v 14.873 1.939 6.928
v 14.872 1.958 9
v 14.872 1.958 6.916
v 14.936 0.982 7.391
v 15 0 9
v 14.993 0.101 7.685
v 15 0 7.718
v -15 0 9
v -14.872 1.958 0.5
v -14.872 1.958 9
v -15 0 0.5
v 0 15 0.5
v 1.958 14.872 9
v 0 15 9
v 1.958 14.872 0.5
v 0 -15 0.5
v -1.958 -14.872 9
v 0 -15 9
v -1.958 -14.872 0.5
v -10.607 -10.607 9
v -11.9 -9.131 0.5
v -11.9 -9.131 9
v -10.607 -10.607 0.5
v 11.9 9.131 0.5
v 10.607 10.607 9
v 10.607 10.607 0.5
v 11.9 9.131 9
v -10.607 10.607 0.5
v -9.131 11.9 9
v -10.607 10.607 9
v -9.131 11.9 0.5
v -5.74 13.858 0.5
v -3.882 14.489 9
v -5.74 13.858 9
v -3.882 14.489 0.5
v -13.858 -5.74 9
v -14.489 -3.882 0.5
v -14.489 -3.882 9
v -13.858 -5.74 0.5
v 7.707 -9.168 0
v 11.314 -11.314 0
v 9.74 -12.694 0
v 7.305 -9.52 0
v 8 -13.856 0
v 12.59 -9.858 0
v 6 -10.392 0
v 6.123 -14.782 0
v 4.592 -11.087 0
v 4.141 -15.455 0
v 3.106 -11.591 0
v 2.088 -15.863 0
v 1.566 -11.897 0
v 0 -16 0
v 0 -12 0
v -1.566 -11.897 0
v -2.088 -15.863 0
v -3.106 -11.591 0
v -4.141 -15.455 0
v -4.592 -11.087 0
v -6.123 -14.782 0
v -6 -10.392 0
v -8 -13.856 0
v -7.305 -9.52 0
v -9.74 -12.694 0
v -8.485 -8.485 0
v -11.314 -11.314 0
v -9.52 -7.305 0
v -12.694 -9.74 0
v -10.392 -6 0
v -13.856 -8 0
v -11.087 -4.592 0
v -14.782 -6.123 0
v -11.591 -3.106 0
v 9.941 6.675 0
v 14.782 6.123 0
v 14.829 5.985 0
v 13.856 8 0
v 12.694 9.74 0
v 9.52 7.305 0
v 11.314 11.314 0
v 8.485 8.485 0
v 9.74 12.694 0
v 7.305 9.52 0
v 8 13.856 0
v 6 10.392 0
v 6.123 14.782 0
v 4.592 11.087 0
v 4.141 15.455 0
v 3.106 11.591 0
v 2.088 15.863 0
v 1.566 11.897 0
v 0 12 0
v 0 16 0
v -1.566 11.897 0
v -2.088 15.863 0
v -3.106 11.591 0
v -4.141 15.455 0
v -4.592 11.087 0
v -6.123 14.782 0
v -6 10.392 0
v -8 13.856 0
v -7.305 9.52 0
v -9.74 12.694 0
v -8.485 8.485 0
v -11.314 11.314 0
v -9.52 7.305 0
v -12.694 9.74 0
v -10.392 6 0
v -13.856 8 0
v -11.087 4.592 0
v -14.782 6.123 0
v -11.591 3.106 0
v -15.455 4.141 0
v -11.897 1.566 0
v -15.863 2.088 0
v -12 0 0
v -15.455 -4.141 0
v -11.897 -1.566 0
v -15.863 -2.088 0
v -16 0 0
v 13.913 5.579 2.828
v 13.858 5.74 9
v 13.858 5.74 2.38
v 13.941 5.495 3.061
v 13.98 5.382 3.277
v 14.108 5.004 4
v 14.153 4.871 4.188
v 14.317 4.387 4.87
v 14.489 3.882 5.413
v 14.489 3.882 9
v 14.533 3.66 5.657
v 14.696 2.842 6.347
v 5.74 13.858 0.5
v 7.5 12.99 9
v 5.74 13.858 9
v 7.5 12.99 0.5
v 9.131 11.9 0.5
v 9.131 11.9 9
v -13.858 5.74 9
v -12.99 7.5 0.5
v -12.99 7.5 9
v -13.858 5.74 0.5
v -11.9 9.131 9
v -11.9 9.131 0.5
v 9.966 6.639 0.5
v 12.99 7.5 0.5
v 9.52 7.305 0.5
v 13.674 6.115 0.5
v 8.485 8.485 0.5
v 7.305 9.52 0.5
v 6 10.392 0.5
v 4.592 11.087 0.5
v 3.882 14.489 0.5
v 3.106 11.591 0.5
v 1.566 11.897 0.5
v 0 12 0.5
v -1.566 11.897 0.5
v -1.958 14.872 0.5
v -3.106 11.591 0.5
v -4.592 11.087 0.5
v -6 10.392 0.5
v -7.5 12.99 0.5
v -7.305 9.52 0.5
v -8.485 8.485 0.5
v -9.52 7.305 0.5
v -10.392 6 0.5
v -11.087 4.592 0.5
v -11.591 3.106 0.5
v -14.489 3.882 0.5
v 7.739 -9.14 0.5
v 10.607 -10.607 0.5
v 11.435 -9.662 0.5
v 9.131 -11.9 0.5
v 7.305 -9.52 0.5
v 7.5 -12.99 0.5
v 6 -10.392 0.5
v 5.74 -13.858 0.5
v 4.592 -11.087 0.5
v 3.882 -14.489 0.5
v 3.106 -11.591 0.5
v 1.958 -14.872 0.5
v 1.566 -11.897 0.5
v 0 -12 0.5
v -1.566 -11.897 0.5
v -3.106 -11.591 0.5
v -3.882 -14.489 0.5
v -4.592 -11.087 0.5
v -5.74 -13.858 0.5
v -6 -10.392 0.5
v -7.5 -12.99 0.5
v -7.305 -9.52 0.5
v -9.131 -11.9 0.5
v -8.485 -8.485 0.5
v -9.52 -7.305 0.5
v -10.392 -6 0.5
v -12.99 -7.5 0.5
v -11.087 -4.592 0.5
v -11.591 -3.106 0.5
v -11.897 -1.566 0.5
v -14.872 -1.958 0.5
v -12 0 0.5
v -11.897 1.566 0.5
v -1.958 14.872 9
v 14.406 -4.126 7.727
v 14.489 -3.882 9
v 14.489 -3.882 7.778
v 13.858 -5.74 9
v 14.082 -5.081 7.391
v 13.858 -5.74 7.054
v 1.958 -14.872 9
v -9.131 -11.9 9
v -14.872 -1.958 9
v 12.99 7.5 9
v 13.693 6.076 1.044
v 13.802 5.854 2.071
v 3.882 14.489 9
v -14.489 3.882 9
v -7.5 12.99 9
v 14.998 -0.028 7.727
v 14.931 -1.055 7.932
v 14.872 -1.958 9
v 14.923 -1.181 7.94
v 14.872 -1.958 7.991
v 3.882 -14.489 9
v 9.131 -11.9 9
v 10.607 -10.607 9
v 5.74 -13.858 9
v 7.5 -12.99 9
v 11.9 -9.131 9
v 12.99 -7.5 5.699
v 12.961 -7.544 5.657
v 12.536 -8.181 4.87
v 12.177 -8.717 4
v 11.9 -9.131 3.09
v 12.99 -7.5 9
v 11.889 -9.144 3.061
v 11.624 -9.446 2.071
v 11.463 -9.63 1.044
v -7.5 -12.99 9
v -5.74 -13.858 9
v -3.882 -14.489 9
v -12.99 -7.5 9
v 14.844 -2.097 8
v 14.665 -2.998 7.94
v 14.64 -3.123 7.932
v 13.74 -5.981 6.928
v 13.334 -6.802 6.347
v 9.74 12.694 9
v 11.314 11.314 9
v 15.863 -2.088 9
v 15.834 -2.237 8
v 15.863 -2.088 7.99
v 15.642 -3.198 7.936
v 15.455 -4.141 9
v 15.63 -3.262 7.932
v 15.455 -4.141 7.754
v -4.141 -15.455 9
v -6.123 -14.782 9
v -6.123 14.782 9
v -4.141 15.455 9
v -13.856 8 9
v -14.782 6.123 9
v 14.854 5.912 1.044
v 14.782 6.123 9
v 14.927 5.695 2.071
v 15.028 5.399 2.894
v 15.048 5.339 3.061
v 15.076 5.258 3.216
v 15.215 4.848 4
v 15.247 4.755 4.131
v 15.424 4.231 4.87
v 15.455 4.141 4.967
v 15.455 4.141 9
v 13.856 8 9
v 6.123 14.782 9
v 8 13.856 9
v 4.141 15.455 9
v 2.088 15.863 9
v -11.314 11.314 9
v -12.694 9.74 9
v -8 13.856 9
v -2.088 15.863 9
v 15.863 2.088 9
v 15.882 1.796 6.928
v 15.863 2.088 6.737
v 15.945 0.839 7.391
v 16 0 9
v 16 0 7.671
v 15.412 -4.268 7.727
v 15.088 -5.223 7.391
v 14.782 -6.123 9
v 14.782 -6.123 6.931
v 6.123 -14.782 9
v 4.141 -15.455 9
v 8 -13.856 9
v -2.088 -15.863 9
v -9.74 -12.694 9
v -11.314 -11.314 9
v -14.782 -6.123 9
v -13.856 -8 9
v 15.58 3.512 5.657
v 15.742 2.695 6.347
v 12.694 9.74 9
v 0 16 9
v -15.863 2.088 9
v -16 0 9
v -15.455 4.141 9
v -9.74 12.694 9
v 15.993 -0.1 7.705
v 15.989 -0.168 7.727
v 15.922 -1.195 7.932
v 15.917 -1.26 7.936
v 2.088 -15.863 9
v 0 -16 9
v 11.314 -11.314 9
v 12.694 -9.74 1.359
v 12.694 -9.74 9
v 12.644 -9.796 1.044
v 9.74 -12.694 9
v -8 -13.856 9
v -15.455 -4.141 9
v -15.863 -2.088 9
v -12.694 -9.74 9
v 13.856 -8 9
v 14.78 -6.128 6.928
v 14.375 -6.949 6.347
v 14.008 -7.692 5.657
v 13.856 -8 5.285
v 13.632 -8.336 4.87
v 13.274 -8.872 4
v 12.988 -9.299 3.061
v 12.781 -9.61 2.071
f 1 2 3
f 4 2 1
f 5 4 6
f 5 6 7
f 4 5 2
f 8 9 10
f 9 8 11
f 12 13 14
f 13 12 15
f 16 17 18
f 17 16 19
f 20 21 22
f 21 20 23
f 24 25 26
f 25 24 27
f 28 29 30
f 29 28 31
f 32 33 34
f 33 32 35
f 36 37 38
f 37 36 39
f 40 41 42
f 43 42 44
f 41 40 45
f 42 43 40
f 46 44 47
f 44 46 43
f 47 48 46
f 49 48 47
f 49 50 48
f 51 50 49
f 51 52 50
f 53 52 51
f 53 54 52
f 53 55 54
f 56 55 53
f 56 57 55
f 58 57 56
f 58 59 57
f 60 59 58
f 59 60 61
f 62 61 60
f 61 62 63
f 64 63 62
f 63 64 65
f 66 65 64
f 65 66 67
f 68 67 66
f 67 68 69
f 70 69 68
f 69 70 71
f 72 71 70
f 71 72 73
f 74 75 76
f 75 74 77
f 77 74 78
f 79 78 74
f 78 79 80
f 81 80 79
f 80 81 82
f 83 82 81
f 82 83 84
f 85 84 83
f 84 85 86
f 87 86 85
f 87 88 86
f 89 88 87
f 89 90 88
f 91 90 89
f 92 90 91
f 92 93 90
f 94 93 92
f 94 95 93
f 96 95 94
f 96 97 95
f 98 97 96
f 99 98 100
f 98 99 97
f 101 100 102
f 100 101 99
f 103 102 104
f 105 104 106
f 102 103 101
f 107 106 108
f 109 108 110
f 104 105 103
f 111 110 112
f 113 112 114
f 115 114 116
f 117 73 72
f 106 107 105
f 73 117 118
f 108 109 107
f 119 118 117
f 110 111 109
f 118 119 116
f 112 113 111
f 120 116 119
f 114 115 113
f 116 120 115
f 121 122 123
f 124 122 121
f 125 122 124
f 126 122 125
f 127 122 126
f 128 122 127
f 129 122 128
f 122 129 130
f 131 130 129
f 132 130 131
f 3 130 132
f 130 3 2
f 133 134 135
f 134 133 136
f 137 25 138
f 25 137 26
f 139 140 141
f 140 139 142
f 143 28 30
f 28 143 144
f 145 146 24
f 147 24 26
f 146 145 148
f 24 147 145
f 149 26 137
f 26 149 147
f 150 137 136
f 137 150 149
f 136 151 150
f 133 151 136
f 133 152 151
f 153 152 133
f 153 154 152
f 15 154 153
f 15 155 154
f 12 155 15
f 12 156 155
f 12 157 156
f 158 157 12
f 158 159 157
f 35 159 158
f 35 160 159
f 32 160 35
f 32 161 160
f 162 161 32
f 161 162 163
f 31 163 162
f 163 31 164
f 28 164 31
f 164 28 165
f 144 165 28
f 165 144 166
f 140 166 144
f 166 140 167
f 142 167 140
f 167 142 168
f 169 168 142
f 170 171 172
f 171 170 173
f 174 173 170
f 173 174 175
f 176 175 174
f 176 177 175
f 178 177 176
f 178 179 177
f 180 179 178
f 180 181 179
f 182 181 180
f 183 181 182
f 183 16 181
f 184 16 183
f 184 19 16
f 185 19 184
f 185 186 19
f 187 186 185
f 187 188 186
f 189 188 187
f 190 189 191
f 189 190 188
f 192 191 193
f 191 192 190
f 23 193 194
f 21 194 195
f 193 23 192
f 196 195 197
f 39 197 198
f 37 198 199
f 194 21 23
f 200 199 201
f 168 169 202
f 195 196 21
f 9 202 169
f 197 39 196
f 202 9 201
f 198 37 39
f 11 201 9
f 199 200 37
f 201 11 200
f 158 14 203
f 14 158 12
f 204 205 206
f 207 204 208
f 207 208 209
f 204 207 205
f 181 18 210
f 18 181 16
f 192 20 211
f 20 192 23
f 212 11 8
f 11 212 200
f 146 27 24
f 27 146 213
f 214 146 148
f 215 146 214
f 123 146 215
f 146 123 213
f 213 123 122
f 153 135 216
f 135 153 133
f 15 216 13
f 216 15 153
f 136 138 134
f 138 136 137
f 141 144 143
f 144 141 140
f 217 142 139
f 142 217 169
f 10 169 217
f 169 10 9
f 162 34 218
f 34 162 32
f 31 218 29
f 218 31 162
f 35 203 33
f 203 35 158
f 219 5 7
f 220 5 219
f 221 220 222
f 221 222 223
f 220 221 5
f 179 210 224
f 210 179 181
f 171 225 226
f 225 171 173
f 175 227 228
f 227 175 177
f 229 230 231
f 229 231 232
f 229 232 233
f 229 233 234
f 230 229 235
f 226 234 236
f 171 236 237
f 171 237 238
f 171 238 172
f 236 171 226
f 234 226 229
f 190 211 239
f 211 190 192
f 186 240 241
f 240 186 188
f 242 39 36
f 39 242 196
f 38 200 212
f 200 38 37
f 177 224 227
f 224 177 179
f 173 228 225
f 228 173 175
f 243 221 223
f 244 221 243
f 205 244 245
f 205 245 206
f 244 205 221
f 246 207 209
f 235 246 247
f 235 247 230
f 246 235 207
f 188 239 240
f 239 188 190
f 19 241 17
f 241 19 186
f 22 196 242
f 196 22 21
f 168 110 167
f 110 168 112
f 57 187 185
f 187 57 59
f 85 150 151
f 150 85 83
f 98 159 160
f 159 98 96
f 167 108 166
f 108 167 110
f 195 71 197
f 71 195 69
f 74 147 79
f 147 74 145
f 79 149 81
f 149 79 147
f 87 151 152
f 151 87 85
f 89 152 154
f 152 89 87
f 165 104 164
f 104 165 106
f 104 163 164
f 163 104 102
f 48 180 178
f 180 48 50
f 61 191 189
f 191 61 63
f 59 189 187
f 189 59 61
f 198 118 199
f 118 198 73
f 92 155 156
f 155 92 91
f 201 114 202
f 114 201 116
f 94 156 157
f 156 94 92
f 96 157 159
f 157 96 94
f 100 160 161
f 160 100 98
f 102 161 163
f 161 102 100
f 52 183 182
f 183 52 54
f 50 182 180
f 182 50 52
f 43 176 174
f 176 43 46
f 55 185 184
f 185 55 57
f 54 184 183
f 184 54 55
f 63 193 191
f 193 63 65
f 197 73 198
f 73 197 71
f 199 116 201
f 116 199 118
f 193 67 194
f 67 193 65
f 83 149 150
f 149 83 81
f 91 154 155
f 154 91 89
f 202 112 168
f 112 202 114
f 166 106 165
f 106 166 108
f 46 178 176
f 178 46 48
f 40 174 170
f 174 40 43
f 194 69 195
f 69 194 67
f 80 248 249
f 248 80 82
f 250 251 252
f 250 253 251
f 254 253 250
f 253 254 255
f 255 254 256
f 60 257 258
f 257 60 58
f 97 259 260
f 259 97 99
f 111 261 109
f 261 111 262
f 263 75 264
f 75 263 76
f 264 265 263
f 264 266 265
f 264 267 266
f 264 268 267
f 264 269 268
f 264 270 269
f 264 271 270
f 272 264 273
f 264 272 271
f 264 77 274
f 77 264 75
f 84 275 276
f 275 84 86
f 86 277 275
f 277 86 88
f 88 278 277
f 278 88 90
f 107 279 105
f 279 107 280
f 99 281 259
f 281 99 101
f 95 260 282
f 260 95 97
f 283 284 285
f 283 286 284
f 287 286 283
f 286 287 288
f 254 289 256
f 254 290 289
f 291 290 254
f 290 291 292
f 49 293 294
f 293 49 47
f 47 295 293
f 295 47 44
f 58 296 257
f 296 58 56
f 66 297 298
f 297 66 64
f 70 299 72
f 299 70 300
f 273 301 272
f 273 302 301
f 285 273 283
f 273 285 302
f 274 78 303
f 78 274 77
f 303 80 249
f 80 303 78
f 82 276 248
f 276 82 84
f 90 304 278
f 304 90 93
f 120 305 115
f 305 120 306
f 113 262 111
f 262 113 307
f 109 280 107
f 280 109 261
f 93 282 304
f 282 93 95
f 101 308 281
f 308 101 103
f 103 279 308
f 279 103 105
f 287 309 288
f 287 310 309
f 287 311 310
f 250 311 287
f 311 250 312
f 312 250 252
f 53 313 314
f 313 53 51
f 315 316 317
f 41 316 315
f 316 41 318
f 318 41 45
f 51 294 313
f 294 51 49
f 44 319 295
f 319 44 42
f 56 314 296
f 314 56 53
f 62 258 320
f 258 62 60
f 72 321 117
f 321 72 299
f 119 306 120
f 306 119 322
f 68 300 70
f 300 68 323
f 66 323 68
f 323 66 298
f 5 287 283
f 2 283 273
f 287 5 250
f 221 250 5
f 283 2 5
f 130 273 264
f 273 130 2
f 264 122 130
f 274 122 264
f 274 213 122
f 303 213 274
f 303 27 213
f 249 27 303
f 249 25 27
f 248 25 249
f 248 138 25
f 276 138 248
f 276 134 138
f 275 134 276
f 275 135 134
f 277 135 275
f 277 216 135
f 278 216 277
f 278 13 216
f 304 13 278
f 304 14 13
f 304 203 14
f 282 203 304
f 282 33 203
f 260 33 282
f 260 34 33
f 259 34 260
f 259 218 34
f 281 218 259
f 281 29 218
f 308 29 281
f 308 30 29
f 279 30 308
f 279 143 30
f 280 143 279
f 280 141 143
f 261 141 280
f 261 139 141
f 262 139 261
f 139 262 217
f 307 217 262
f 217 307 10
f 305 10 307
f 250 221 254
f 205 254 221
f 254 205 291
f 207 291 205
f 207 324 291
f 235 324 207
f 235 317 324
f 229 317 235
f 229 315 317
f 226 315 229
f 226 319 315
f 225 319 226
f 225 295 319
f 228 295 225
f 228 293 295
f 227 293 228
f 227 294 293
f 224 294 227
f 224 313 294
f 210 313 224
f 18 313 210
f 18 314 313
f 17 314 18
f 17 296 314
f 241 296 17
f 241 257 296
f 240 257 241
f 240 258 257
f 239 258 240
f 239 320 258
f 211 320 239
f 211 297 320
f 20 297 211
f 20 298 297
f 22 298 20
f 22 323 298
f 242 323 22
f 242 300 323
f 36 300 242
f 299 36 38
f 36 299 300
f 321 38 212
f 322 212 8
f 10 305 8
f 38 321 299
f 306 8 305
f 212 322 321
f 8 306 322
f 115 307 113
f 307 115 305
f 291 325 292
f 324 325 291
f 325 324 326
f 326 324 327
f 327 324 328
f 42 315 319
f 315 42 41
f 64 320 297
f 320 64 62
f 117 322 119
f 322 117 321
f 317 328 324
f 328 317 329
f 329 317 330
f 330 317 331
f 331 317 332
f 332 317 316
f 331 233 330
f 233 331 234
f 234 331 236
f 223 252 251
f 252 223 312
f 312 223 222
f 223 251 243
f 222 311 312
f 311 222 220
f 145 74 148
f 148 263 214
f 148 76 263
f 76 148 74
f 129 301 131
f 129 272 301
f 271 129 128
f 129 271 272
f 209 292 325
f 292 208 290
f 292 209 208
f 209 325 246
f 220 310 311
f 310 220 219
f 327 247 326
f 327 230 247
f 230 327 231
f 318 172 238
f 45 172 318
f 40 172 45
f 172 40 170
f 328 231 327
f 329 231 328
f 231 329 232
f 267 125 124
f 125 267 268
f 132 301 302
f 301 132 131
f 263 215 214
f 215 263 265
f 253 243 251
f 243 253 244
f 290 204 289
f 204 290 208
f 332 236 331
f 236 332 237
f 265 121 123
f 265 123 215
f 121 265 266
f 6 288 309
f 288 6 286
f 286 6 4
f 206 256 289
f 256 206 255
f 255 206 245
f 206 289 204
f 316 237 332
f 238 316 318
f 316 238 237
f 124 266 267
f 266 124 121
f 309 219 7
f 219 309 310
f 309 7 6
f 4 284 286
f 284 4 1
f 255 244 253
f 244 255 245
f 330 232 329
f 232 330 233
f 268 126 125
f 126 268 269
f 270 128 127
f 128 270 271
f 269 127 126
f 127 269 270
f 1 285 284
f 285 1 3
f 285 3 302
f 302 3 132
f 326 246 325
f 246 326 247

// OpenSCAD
// file: ../build_environments.scad
// build_environments.scad: modules to build level sections
//

module pool(diameter=10.0, wall_height=2.0, step_width=3.0, connections=[])
{
    difference() {
        union() {
        difference() {
            cylinder(h=0.5,r1=diameter+step_width,r2=diameter+step_width,$fn=48);
            translate([0,0,-0.1])
                cylinder(h=0.7,r1=diameter,r2=diameter,$fn=48);
        }
        difference() {
            cylinder(h=wall_height,r1=diameter+step_width+1.0,r2=diameter+step_width+1.0,$fn=48);
            translate([0,0,-0.1])
                cylinder(h=wall_height+0.2,r1=diameter+step_width,r2=diameter+step_width,$fn=48);
        }
        }
    
        for (c = connections)
        {
            rotate([0,90,0]) {
                angle = atan2(c[1],c[0]);
                rotate([-angle,0,0]) {
                    cylinder(h=diameter+5.0,r1=c[2],r2=c[2],$fn=48);
                }
            }
        }
    }
}

module straight(length=10.0, width=2.0, dy1=0.0, dy2=0.0, dz=0.0)
{
    dims = [0, 0, 0, 0, 0, (dz/length)];
    matrix = [
        [ 1, dims[0], dims[1], 0 ],
        [ dims[2], 1, dims[4], 0 ],
        [ dims[5], dims[3], 1, 0 ],
        [ 0, 0, 0, 1 ]
    ];
    multmatrix(matrix)
    difference() {
        translate([dy1,0,0])
        union() {
            rotate([0,90,0]) {
                difference() {
                    cylinder(h=(length-dy1-dy2),r1=width+1.0,r2=width+1.0,$fn=24);
                    translate([0,0,-0.1])
                        cylinder(h=(length-dy1-dy2+0.2),r1=width,r2=width,$fn=24);
                }
                difference() {
                    cylinder(h=1.0,r1=width+2.0,r2=width+2.0,$fn=24);
                    translate([0,0,-0.1])
                        cylinder(h=1.2,r1=width,r2=width,$fn=24);
                }
                translate([0,0,(length-dy1-dy2)-1.0]) {
                    difference() {
                        cylinder(h=1.0,r1=width+2.0,r2=width+2.0,$fn=24);
                        translate([0,0,-0.1])
                            cylinder(h=1.2,r1=width,r2=width,$fn=24);
                    }
                }
            }
        }
        translate([0,0,-(2*width+4.0)/2])
            cube([3*length,3*length,2*width+4.0],center=true);
    }
}

module curve(p0=[0,0], center=[0,0], dir=1, angle=0.0, width=2.0)
{
    radius = sqrt((p0[0]-center[0])*(p0[0]-center[0]) + (p0[1]-center[1])*(p0[1]-center[1]));
    if (dir == 0) {
        difference() {
            rotate([0,0,-90])
            difference() {
                rotate_extrude(angle = angle, convexity = 10, $fn=32)
                    translate([radius, 0, 0])
                        circle(r = width+1.0,$fn=24);
                rotate([0,0,-1.0])
                    rotate_extrude(angle = angle+2.0, convexity = 10, $fn=32)
                        translate([radius, 0, 0])
                            circle(r = width,$fn=24);
            }
            translate([0,0,-(2*width+4.0)/2])
                cube([5*radius,5*radius,2*width+4.0],center=true);
        }
    }
    else {
        difference() {
            rotate([0,0,90])
            difference() {
                rotate_extrude(angle = -angle, convexity = 10, $fn=32)
                    translate([radius, 0, 0])
                        circle(r = width+1.0,$fn=24);
                rotate([0,0,1.0])
                    rotate_extrude(angle = -angle-2.0, convexity = 10, $fn=32)
                        translate([radius, 0, 0])
                            circle(r = width,$fn=24);
            }
            translate([0,0,-(2*width+4.0)/2])
                cube([5*radius,5*radius,2*width+4.0],center=true);
        }
    }

}

// test pool
//pool(diameter=12.0000, wall_height=3.0000, step_width=3.0000, connections=[[0.0000,-26.0000,2.0000], [23.6074,0.0000,2.0000]]);

// test straight, slope
//straight(length=26.0000, width=2.0000, dy1=11.8322, dy2=6.7082, dz=0.0000);
//straight(length=29.1549, width=12.0000, dy1=0.0000, dy2=0.0000, dz=-15.0000);

// test curve
//curve(p0=[23.6074, 0.0000], center=[23.6074, 5.0000], dir=0, angle=60.1011, width=2.0000);
//curve(p0=[33.6426, 12.4219], center=[37.9771, 9.9295], dir=1, angle=120.4627, width=2.0000);
// main file
use <../build_environments.scad>;
pool(diameter=12.0000, wall_height=9.0000, step_width=3.0000, connections=[[56.1908,-7.9376,8.0000]]);
